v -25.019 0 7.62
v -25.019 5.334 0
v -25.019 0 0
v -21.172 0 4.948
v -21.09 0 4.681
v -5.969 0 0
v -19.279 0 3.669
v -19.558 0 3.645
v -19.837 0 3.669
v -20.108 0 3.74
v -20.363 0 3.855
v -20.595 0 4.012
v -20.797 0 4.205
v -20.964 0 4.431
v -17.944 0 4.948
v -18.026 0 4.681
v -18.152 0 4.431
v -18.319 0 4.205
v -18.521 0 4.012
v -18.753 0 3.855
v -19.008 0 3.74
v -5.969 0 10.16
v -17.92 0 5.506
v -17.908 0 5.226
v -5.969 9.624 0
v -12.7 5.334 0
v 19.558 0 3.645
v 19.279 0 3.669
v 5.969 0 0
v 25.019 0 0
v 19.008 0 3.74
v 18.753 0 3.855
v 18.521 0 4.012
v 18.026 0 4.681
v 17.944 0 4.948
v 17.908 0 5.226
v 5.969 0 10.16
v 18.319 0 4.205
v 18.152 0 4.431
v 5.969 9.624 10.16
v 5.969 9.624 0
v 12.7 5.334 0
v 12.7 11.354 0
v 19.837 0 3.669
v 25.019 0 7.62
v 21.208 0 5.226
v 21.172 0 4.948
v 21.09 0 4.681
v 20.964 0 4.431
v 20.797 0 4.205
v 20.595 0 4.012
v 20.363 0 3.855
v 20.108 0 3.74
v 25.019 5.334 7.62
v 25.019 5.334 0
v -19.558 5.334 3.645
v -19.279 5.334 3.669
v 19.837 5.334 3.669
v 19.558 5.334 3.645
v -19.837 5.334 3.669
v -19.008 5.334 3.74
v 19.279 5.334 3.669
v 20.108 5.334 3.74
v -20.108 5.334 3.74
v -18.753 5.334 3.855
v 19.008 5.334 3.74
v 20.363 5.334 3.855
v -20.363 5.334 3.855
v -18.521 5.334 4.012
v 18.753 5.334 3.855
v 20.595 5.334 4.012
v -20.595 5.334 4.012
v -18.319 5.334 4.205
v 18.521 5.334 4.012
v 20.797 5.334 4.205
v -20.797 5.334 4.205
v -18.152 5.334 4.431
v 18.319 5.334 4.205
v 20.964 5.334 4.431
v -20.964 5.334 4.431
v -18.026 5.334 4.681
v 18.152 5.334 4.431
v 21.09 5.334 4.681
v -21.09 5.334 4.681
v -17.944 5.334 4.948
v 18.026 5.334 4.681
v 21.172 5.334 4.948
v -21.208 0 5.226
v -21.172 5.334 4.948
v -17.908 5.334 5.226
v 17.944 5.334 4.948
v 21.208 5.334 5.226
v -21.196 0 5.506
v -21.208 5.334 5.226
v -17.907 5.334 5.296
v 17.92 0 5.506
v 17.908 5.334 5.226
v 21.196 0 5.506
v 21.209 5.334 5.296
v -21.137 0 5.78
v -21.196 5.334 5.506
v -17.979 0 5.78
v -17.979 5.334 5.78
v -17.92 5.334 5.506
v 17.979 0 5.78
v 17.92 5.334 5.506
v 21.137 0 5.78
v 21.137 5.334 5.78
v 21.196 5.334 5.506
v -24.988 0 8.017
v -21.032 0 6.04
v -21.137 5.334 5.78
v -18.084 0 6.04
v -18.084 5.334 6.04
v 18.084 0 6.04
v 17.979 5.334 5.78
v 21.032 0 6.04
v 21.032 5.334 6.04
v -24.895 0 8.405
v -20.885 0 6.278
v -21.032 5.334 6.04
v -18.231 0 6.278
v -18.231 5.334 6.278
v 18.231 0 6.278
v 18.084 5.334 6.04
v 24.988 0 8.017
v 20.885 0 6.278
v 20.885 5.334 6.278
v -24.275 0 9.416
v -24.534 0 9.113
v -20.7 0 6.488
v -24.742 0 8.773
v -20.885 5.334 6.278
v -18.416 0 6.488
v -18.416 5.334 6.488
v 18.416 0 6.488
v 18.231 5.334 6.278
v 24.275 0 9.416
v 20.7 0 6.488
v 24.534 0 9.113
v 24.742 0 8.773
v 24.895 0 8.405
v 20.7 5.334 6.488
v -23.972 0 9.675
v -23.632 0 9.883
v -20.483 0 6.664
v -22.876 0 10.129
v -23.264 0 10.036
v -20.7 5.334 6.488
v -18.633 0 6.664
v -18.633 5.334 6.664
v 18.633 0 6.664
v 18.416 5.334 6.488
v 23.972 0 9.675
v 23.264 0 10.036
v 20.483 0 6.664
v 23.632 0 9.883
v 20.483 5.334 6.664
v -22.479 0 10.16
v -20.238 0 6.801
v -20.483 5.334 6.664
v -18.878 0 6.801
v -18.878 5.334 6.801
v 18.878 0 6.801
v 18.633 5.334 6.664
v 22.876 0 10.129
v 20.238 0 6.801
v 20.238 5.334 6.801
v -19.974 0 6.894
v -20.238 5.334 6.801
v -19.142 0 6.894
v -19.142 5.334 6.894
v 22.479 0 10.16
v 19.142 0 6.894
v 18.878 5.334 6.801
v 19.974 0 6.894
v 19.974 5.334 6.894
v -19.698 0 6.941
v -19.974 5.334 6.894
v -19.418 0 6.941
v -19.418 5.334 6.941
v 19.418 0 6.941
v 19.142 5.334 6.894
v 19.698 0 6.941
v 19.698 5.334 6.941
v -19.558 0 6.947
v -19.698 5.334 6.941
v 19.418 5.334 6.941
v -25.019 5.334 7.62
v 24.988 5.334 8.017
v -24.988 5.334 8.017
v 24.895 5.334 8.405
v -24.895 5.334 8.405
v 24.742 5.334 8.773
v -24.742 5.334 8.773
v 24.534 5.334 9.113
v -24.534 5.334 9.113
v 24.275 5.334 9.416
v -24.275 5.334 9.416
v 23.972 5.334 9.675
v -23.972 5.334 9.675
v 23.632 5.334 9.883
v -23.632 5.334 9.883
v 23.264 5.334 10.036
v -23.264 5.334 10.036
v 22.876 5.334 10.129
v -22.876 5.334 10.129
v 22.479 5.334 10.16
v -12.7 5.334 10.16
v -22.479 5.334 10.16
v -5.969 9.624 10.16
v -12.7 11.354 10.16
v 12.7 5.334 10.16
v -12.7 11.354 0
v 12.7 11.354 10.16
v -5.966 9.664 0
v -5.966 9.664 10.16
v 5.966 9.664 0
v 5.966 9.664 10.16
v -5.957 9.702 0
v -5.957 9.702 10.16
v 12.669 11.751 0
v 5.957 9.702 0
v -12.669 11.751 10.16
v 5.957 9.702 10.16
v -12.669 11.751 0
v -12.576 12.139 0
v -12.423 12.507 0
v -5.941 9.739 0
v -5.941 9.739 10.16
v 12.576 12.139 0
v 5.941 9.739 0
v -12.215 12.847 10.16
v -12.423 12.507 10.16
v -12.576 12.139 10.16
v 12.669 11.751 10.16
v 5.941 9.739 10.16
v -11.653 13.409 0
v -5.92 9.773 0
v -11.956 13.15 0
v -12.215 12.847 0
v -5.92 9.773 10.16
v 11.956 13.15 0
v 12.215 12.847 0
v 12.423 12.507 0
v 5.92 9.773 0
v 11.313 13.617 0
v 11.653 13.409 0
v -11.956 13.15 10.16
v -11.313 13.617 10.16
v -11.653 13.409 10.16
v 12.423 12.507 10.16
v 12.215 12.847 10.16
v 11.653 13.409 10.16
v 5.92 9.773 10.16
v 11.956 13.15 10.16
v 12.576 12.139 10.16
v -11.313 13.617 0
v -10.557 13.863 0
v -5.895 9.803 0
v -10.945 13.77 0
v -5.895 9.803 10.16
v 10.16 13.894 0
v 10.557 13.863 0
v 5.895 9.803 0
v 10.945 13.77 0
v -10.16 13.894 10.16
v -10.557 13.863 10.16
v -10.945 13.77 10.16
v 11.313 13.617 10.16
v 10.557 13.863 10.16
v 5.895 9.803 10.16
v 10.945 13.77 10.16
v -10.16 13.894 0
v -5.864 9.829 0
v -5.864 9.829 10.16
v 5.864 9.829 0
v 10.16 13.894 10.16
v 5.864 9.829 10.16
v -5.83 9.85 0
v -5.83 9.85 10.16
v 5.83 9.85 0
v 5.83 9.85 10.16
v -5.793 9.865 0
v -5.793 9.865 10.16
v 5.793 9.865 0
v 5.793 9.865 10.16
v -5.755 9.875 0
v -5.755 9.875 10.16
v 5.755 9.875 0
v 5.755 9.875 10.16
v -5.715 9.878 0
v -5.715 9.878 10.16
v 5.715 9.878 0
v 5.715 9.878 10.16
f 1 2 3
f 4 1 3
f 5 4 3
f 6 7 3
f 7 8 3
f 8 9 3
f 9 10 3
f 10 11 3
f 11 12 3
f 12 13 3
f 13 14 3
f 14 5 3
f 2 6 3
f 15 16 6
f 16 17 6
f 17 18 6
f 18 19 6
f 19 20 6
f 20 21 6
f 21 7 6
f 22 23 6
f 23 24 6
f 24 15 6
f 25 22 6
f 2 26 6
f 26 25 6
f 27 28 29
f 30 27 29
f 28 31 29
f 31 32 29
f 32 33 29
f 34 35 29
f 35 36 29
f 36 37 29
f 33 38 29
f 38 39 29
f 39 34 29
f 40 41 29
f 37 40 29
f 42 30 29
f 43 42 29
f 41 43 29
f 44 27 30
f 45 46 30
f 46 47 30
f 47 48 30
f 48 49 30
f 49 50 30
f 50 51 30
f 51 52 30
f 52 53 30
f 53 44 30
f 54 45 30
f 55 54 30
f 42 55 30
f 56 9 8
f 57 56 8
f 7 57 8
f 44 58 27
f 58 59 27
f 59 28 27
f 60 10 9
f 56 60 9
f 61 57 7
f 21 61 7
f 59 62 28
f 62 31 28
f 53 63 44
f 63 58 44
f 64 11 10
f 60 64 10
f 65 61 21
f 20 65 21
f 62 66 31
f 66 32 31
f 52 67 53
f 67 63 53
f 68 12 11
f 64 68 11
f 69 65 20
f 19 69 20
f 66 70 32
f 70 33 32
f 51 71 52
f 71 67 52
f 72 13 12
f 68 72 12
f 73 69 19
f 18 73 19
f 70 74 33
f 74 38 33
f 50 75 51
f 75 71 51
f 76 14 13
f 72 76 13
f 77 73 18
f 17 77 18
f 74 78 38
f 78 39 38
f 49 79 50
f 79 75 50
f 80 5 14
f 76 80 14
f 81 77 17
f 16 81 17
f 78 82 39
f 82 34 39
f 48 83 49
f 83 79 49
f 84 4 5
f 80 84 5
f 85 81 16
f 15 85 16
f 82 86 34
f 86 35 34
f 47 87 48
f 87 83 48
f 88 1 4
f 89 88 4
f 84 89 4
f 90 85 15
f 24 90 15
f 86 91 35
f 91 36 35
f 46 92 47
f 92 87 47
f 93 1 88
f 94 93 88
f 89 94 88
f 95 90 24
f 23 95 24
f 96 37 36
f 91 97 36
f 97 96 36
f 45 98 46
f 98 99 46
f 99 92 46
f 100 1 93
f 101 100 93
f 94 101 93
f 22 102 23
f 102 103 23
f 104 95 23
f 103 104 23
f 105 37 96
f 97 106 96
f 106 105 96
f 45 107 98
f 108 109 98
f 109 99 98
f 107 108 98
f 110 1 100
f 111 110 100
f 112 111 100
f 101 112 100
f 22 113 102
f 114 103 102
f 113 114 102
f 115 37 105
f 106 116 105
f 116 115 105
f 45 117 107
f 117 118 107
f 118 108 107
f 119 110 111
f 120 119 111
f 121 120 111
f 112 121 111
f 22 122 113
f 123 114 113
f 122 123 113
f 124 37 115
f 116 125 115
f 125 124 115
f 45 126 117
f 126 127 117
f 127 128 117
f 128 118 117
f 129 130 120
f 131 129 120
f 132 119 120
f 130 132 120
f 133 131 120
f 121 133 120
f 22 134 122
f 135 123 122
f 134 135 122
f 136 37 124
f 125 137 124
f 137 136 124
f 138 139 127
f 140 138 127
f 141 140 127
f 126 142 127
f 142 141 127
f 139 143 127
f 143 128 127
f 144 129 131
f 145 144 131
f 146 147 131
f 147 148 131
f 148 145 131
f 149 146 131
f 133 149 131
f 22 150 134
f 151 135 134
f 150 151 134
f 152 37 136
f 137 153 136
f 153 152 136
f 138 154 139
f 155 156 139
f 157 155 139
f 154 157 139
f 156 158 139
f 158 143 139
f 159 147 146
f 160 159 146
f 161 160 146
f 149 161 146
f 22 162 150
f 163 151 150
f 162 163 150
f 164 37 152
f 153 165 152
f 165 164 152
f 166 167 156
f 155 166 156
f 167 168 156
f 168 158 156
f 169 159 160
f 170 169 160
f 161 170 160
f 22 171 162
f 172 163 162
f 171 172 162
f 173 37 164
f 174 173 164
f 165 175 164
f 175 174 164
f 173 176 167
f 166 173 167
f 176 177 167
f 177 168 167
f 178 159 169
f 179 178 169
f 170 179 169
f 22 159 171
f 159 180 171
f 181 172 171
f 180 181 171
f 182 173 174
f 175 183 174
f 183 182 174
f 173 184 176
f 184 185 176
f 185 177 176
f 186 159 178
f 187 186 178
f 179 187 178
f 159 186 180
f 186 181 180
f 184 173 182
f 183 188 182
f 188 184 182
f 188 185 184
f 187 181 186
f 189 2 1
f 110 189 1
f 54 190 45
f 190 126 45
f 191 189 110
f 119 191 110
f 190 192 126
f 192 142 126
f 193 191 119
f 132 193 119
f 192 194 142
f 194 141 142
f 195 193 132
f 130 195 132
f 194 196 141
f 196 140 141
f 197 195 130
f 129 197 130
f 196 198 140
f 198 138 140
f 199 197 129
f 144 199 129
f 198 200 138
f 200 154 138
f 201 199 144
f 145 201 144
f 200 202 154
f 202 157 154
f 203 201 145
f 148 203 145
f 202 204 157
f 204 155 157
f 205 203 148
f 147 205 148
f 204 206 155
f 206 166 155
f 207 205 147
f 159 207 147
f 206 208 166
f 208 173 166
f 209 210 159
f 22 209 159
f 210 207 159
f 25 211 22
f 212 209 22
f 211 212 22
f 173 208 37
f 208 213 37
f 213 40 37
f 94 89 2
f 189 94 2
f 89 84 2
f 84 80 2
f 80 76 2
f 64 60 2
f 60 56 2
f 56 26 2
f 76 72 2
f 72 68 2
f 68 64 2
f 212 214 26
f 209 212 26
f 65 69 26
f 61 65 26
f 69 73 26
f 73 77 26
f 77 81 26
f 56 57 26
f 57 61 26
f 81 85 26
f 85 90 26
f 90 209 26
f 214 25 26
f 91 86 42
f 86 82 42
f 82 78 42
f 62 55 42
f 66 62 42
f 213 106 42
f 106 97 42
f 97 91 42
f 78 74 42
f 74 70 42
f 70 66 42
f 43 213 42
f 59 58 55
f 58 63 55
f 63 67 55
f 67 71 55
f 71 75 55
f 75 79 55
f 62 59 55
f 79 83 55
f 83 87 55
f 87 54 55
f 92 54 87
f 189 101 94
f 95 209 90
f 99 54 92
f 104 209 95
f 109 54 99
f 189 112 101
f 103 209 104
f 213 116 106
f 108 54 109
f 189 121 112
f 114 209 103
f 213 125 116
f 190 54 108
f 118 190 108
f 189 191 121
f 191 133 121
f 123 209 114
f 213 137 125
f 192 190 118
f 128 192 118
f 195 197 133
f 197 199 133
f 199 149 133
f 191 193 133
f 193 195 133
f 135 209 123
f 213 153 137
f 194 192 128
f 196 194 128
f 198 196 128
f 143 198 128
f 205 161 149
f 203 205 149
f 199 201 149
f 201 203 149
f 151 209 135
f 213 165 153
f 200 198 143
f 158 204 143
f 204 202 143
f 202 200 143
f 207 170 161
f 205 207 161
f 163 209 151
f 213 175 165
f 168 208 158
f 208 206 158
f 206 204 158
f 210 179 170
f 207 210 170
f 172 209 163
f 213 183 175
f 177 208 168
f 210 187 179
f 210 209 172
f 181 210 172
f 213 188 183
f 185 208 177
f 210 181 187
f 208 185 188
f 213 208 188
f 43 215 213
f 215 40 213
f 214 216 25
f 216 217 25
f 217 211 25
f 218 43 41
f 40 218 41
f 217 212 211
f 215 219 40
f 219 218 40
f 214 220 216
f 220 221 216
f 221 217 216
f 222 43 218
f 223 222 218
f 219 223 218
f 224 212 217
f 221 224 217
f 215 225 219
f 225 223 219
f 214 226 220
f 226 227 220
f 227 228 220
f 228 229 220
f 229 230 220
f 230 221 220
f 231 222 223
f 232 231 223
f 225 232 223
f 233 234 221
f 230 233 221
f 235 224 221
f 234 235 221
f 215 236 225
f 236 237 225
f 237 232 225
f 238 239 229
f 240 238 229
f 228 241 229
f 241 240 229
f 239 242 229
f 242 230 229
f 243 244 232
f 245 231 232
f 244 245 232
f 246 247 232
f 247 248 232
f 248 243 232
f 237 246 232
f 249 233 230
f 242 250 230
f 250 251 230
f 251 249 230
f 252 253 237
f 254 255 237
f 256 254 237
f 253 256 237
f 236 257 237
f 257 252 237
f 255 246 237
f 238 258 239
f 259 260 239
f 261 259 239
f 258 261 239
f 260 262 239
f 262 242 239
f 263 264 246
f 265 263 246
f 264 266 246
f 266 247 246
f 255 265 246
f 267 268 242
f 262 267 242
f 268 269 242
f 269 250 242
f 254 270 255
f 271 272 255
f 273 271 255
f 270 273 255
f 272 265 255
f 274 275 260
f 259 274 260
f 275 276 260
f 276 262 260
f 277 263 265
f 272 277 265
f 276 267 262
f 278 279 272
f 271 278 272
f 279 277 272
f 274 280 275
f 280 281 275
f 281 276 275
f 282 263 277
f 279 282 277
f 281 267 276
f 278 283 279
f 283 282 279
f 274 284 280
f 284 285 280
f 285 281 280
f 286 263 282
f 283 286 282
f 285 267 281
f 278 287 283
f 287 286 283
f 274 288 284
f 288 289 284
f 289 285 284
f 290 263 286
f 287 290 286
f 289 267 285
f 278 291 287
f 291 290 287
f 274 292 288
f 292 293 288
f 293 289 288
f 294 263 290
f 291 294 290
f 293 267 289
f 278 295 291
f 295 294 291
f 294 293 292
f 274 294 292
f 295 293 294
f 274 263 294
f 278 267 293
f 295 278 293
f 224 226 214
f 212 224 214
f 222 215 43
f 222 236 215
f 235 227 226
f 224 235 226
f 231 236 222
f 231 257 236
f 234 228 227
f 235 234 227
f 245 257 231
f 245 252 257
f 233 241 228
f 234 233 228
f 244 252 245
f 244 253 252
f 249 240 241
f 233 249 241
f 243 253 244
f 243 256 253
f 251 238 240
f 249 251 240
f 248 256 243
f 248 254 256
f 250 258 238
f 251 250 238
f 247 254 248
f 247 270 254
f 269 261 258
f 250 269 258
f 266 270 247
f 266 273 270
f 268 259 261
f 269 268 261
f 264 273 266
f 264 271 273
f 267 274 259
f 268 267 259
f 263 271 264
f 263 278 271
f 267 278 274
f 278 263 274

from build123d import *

# Parameters (mm, degrees)
BOSS_EXTRUDE1_DEPTH = 10.16
FILLET1_R           = 2.54
SKETCH3_R           = 1.651
CUT_EXTRUDE1_DEPTH  = 10.16
FILLET2_R           = 0.254


with BuildPart() as part:
    # Sketch2 → Boss-Extrude1 (new body)
    with BuildSketch(Plane.XY):
        Polygon((12.7, 13.894017094), (-12.7, 13.894017094), (-12.7, 5.334), (-25.019, 5.334), (-25.019, 0), (-5.969, 0), (-5.969, 9.877777778), (5.969, 9.877777778), (5.969, 0), (25.019, 0), (25.019, 5.334), (12.7, 5.334), align=None)
    extrude(amount=BOSS_EXTRUDE1_DEPTH)

    # Fillet1
    fillet1_edges = [part.edges().sort_by_distance(p)[0] for p in [
        (-12.7, 13.894017094, 5.08),
        (12.7, 13.894017094, 5.08),
        (-25.019, 2.667, 10.16),
        (25.019, 2.667, 10.16),
    ]]
    fillet(fillet1_edges, radius=FILLET1_R)

    # Sketch3 → Cut-Extrude1 (cut)
    with BuildSketch(Plane(origin=(0, 0, 0), x_dir=(1, 0, 0), z_dir=(0, 1, 0))):
        with Locations((-19.558, -5.296219795)):
            Circle(SKETCH3_R)
        with Locations((19.558, -5.296219795)):
            Circle(SKETCH3_R)
    extrude(amount=CUT_EXTRUDE1_DEPTH, mode=Mode.SUBTRACT)

    # Fillet2
    fillet2_edges = [part.edges().sort_by_distance(p)[0] for p in [
        (5.969, 9.877777778, 5.08),
        (-5.969, 9.877777778, 5.08),
    ]]
    fillet(fillet2_edges, radius=FILLET2_R)


solid = part.part
